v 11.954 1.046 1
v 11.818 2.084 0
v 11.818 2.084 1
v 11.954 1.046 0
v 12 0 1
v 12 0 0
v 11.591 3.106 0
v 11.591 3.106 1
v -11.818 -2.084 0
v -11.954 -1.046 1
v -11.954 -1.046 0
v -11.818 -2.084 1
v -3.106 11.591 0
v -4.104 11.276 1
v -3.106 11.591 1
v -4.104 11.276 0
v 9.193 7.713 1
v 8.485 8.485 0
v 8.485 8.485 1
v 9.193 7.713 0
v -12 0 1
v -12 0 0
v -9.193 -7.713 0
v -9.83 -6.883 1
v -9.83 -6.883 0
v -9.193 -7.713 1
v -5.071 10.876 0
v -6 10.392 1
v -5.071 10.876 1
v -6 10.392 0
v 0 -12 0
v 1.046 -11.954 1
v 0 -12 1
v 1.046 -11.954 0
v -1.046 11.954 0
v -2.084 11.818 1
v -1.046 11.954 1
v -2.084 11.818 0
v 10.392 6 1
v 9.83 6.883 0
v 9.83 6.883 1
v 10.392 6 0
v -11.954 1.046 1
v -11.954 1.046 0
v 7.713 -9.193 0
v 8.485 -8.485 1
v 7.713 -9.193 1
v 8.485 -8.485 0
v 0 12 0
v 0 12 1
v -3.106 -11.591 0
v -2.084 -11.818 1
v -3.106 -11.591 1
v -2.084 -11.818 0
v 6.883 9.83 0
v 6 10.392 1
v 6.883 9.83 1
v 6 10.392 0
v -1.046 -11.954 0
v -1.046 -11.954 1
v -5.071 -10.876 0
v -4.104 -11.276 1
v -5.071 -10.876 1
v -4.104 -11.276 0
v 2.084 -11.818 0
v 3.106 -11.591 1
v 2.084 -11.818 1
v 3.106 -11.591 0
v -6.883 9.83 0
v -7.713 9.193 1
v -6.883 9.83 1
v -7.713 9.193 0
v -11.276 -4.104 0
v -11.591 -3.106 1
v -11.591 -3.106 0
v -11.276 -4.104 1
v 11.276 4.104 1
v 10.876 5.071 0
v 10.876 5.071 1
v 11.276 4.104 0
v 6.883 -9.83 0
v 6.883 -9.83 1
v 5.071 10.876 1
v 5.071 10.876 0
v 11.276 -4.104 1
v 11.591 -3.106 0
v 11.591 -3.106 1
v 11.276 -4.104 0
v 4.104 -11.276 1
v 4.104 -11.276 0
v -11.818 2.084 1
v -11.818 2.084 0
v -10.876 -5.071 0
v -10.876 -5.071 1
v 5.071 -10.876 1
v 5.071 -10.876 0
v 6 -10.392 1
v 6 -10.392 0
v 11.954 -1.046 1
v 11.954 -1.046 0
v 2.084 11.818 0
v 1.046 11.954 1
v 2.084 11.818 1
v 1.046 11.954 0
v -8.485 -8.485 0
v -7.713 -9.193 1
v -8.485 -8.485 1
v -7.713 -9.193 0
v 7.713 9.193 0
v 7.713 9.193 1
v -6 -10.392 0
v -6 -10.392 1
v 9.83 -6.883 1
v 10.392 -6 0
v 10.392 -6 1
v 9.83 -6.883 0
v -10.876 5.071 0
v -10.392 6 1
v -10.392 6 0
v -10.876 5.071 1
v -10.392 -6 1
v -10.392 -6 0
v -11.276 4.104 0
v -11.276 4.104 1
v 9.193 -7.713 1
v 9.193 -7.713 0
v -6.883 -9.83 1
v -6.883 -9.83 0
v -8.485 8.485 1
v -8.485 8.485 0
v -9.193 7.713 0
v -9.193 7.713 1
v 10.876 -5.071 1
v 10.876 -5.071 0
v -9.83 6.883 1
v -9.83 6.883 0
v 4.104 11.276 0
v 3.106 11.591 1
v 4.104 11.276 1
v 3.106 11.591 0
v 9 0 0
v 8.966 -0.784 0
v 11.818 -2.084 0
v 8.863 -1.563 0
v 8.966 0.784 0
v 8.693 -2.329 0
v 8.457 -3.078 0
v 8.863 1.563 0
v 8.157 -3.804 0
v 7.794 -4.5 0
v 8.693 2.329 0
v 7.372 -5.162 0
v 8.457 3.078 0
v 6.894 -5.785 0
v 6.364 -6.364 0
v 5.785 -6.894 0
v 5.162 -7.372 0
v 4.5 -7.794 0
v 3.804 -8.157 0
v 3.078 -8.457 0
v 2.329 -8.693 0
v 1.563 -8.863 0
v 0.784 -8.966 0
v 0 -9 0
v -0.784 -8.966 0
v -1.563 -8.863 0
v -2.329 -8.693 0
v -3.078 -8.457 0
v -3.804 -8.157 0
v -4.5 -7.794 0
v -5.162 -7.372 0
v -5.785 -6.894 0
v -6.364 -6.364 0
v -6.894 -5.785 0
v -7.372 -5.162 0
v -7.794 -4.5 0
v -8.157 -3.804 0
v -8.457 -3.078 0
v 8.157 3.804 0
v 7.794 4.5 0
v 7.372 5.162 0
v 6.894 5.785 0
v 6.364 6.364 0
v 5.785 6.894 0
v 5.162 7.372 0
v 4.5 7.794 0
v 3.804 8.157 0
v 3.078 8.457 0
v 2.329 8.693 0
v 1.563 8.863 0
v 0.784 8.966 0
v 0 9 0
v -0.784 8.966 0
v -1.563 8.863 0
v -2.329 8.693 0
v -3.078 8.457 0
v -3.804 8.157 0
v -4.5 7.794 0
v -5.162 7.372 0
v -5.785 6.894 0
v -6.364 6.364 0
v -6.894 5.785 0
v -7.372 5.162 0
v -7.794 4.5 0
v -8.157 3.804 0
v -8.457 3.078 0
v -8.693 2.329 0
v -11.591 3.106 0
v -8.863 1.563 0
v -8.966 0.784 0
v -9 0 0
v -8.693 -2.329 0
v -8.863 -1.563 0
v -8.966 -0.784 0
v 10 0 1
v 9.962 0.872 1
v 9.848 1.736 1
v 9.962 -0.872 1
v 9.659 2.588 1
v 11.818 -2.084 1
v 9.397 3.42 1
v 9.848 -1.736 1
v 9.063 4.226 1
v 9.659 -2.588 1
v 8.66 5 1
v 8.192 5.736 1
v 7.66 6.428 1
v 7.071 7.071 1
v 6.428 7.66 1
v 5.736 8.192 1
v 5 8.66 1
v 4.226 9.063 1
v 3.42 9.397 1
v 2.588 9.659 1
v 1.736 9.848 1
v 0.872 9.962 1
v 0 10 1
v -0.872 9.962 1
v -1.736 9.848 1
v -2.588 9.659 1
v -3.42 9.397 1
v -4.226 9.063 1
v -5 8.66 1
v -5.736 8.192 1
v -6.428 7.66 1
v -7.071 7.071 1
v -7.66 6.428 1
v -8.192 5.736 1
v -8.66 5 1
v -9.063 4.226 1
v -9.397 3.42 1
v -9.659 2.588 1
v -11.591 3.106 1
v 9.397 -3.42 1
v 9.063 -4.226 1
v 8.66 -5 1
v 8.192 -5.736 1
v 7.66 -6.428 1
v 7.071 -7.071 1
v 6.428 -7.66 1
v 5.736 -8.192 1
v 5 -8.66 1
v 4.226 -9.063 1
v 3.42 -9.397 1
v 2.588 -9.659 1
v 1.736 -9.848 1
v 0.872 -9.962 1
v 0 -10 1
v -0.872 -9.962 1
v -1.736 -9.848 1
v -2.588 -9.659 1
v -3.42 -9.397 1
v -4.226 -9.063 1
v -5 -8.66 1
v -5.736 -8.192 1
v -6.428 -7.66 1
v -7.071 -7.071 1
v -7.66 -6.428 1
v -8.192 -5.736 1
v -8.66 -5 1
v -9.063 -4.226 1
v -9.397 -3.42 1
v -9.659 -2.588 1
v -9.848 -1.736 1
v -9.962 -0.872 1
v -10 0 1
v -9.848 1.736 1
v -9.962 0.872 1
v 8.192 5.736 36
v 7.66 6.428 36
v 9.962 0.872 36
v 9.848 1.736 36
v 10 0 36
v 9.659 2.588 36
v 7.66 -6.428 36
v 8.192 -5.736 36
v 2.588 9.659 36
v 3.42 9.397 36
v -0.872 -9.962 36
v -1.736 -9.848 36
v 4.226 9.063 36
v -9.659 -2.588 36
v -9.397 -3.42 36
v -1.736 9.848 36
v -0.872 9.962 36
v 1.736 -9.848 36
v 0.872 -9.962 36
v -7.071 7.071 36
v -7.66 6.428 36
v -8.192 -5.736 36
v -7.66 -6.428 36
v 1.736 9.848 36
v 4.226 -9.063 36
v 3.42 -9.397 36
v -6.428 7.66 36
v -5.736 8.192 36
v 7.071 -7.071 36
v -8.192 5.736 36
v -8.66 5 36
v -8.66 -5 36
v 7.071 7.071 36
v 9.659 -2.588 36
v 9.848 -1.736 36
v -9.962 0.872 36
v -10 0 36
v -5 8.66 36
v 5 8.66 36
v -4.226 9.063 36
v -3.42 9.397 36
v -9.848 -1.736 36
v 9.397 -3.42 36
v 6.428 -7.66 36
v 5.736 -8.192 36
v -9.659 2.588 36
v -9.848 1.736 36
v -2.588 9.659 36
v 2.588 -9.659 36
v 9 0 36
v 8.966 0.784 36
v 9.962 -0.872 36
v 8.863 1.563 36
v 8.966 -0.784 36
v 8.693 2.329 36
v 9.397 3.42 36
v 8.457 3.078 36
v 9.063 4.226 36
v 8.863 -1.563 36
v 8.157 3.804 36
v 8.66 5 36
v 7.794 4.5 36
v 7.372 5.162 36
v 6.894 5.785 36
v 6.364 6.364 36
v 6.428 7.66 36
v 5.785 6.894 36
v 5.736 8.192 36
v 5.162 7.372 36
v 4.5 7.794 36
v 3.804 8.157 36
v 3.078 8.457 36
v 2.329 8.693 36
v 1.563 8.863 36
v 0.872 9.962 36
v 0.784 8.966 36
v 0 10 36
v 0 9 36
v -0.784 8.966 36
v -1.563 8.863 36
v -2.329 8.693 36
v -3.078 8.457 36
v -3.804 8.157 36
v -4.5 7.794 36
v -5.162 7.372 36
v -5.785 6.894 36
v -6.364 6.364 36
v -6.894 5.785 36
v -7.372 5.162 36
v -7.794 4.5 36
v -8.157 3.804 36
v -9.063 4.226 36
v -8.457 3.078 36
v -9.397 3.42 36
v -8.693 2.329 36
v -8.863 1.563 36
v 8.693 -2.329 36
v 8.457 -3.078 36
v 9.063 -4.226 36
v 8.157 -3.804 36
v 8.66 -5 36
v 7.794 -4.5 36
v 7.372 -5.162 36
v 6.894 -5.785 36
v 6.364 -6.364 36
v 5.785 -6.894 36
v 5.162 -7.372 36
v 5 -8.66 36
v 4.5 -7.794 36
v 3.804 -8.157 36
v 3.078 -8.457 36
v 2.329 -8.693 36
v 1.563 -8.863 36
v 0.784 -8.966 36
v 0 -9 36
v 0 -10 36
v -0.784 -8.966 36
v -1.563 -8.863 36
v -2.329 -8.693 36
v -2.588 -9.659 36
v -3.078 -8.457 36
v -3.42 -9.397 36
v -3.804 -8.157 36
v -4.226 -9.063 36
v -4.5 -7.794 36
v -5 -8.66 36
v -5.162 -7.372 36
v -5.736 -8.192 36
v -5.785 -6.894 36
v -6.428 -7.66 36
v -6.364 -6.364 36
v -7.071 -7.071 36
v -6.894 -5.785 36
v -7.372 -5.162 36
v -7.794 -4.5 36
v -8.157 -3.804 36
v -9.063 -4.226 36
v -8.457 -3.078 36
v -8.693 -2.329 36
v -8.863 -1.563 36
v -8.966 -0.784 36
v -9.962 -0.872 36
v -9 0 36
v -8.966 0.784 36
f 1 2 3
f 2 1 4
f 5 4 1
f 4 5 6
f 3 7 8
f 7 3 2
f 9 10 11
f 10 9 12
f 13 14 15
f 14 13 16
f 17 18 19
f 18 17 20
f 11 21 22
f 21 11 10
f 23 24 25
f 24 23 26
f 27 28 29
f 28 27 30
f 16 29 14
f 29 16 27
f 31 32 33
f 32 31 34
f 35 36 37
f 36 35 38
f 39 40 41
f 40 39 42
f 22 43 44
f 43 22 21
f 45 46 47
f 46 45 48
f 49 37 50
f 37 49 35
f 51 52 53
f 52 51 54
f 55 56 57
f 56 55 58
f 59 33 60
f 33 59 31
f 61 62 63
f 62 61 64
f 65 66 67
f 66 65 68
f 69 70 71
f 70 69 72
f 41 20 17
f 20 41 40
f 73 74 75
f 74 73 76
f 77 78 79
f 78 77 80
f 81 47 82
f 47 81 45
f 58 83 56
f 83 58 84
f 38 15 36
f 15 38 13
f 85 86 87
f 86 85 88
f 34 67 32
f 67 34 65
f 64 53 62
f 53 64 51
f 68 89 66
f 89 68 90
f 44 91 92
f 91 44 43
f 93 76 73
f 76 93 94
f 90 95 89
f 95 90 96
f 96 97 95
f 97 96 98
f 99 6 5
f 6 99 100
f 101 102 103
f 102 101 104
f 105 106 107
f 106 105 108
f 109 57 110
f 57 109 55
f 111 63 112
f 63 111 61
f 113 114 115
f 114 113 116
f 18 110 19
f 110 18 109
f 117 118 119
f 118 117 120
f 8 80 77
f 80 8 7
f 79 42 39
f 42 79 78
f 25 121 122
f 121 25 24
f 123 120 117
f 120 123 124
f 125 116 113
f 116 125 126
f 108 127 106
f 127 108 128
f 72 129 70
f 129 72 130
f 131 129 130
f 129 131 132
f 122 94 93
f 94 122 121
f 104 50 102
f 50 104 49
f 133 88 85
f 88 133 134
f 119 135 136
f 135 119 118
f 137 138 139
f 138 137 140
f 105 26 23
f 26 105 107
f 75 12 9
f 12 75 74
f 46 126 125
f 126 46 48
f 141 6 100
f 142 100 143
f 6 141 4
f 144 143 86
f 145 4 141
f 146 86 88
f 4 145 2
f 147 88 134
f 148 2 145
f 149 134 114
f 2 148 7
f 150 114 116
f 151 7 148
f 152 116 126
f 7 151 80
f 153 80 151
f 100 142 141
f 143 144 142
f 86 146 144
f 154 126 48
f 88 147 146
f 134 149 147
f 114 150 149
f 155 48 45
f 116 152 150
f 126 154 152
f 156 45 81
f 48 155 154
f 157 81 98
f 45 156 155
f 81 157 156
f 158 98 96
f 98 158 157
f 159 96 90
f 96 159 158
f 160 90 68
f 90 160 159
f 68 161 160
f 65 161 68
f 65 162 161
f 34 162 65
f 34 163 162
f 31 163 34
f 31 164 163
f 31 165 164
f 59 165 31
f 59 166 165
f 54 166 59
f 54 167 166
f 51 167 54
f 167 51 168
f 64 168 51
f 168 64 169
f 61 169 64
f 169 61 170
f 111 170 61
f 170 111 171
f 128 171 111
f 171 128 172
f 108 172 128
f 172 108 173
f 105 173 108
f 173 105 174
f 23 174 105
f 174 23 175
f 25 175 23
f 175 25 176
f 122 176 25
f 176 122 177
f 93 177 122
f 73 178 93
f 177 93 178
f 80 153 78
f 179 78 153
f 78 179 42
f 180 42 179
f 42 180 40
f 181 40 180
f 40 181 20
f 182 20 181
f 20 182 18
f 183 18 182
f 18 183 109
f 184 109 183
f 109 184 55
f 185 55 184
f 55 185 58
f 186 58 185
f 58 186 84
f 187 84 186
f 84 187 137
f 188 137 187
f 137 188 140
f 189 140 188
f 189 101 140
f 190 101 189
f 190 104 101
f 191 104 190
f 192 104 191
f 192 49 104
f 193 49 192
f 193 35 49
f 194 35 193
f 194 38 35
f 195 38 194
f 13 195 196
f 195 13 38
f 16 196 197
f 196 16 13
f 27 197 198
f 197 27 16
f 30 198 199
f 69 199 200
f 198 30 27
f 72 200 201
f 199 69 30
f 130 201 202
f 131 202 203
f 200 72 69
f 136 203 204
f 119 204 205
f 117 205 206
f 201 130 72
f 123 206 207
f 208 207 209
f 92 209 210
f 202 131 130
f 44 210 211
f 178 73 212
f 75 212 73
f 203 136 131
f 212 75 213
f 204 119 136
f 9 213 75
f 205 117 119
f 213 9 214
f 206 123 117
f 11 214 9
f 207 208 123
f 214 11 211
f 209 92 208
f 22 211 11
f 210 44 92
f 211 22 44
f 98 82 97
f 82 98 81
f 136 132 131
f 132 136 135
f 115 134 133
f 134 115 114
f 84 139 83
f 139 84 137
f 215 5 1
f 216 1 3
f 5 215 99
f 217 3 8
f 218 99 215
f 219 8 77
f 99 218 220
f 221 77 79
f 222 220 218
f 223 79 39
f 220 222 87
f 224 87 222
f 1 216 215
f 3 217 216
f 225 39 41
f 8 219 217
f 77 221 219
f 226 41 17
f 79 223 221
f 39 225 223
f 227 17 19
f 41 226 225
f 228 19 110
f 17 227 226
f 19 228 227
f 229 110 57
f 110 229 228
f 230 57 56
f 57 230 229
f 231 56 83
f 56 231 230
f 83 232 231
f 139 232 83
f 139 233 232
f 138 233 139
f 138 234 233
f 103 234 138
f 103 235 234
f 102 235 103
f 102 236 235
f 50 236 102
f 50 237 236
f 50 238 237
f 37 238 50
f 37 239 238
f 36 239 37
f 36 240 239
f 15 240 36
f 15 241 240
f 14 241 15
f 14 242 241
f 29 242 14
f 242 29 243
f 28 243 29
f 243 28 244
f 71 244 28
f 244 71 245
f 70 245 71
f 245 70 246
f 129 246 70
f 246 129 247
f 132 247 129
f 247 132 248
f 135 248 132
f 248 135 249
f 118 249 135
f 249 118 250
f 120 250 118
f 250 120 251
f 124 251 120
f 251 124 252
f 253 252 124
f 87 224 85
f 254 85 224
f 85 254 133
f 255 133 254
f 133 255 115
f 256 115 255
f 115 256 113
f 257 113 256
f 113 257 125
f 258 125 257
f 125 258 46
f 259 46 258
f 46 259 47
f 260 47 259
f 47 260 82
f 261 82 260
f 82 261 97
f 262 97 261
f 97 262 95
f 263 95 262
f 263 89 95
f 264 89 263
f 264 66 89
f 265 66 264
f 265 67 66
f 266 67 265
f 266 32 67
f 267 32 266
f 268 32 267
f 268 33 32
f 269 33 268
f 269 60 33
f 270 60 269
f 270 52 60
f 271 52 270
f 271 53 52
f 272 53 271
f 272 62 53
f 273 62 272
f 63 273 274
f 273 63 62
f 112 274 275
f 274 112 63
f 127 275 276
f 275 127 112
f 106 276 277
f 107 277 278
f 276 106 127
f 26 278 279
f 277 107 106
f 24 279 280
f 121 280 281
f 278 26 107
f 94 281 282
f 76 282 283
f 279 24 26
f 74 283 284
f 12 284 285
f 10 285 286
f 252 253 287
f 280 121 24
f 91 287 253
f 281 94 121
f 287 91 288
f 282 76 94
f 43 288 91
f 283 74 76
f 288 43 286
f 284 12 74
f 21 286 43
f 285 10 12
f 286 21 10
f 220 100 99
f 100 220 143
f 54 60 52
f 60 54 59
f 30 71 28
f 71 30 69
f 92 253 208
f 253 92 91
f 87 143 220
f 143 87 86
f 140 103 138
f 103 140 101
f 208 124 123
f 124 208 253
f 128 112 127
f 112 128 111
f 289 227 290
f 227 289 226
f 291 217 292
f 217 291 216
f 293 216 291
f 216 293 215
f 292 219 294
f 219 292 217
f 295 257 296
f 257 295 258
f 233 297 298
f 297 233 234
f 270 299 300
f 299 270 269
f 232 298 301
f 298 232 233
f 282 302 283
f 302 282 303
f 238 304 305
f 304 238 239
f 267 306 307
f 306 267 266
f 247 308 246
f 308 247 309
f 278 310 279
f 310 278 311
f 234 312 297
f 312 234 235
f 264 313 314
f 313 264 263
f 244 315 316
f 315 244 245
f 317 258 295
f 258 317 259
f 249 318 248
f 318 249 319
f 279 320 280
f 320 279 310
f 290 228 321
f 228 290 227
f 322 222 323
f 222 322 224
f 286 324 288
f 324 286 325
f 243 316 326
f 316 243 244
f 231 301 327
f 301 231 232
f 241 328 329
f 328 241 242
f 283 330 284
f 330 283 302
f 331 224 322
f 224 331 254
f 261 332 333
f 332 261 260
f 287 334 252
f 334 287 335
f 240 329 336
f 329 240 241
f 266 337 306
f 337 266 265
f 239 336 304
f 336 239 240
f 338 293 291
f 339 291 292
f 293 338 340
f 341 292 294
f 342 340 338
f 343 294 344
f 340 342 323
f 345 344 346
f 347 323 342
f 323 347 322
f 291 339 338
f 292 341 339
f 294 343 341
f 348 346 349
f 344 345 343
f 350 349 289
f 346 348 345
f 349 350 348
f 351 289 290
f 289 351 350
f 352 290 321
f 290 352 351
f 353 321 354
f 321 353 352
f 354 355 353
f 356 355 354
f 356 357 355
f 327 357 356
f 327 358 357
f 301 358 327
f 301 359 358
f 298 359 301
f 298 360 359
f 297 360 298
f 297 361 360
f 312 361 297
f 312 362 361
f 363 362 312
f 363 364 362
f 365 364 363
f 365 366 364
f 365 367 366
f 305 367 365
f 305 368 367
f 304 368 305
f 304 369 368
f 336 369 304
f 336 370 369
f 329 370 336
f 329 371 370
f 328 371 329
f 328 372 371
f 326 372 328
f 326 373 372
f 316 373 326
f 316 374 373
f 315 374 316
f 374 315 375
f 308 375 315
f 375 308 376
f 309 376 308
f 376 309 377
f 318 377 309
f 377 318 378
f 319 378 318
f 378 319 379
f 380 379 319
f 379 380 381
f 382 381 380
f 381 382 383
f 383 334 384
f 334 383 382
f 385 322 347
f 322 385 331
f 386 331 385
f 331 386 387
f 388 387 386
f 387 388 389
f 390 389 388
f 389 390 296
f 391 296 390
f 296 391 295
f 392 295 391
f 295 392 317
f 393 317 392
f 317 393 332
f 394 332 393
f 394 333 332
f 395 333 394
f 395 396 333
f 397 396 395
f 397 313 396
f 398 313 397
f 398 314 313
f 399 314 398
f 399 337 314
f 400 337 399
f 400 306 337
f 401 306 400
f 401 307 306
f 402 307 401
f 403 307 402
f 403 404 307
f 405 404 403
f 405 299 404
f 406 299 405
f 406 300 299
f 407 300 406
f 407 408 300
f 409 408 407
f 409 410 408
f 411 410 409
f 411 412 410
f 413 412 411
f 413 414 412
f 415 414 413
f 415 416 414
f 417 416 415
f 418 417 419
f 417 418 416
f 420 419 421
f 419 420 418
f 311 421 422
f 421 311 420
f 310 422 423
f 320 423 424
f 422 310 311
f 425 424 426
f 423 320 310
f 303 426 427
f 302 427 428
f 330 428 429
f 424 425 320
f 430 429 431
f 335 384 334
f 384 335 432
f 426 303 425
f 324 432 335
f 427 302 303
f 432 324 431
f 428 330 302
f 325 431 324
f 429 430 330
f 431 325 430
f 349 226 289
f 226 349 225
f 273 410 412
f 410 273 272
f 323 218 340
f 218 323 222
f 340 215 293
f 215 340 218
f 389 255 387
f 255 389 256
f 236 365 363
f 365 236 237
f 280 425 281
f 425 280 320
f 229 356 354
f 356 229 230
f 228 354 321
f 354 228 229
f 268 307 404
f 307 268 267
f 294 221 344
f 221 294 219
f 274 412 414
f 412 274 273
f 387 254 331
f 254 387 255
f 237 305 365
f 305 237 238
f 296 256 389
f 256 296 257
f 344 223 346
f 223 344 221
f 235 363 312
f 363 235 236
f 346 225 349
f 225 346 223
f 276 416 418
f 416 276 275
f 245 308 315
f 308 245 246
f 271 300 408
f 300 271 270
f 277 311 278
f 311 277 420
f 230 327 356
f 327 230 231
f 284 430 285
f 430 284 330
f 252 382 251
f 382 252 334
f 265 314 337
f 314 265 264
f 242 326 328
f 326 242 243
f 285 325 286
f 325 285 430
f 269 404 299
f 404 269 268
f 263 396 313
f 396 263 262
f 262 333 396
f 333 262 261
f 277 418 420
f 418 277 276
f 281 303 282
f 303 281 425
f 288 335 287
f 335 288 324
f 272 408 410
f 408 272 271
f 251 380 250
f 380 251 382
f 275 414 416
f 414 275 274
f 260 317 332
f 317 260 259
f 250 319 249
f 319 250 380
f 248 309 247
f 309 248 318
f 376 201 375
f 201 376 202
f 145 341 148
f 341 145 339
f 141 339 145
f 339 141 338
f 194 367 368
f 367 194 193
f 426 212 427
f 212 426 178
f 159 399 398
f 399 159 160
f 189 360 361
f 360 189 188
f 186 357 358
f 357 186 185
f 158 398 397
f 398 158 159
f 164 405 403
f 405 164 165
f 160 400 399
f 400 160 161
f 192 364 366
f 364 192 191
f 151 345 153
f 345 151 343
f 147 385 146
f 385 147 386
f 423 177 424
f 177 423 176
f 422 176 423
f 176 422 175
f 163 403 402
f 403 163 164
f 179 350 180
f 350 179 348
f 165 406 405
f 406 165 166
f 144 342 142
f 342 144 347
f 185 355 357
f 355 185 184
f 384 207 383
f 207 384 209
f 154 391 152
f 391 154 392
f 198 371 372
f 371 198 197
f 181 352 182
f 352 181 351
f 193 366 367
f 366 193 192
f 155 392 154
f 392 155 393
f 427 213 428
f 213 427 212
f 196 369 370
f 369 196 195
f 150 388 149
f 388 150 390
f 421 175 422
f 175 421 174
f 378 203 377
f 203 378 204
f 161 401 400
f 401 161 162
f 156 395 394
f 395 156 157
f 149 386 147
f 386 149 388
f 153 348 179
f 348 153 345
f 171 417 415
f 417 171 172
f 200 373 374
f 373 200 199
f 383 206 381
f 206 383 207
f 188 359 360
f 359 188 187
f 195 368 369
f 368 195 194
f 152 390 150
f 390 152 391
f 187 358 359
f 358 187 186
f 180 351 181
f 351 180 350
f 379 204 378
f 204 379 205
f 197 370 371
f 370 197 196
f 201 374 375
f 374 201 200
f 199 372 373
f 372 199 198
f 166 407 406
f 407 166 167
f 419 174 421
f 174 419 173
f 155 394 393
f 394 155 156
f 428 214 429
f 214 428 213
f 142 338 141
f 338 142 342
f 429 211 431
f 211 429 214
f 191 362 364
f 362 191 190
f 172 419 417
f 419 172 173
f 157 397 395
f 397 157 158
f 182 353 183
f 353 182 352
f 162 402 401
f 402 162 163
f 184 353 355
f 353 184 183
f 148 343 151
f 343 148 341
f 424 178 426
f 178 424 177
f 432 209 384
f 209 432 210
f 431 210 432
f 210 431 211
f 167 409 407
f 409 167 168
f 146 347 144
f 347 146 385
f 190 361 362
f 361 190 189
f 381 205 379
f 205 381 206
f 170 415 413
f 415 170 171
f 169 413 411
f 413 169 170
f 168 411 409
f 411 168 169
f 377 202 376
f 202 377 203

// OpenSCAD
// CC BY-SA, FHNW (University of Applied Sciences and Arts Northwestern Switzerland)

$fn = 72;

difference() {
  union() {
    cylinder(1, 12, 12);
    cylinder(36, 10, 10);
  }
  translate([0, 0, -1]) cylinder(36 + 2, 9, 9);
}
